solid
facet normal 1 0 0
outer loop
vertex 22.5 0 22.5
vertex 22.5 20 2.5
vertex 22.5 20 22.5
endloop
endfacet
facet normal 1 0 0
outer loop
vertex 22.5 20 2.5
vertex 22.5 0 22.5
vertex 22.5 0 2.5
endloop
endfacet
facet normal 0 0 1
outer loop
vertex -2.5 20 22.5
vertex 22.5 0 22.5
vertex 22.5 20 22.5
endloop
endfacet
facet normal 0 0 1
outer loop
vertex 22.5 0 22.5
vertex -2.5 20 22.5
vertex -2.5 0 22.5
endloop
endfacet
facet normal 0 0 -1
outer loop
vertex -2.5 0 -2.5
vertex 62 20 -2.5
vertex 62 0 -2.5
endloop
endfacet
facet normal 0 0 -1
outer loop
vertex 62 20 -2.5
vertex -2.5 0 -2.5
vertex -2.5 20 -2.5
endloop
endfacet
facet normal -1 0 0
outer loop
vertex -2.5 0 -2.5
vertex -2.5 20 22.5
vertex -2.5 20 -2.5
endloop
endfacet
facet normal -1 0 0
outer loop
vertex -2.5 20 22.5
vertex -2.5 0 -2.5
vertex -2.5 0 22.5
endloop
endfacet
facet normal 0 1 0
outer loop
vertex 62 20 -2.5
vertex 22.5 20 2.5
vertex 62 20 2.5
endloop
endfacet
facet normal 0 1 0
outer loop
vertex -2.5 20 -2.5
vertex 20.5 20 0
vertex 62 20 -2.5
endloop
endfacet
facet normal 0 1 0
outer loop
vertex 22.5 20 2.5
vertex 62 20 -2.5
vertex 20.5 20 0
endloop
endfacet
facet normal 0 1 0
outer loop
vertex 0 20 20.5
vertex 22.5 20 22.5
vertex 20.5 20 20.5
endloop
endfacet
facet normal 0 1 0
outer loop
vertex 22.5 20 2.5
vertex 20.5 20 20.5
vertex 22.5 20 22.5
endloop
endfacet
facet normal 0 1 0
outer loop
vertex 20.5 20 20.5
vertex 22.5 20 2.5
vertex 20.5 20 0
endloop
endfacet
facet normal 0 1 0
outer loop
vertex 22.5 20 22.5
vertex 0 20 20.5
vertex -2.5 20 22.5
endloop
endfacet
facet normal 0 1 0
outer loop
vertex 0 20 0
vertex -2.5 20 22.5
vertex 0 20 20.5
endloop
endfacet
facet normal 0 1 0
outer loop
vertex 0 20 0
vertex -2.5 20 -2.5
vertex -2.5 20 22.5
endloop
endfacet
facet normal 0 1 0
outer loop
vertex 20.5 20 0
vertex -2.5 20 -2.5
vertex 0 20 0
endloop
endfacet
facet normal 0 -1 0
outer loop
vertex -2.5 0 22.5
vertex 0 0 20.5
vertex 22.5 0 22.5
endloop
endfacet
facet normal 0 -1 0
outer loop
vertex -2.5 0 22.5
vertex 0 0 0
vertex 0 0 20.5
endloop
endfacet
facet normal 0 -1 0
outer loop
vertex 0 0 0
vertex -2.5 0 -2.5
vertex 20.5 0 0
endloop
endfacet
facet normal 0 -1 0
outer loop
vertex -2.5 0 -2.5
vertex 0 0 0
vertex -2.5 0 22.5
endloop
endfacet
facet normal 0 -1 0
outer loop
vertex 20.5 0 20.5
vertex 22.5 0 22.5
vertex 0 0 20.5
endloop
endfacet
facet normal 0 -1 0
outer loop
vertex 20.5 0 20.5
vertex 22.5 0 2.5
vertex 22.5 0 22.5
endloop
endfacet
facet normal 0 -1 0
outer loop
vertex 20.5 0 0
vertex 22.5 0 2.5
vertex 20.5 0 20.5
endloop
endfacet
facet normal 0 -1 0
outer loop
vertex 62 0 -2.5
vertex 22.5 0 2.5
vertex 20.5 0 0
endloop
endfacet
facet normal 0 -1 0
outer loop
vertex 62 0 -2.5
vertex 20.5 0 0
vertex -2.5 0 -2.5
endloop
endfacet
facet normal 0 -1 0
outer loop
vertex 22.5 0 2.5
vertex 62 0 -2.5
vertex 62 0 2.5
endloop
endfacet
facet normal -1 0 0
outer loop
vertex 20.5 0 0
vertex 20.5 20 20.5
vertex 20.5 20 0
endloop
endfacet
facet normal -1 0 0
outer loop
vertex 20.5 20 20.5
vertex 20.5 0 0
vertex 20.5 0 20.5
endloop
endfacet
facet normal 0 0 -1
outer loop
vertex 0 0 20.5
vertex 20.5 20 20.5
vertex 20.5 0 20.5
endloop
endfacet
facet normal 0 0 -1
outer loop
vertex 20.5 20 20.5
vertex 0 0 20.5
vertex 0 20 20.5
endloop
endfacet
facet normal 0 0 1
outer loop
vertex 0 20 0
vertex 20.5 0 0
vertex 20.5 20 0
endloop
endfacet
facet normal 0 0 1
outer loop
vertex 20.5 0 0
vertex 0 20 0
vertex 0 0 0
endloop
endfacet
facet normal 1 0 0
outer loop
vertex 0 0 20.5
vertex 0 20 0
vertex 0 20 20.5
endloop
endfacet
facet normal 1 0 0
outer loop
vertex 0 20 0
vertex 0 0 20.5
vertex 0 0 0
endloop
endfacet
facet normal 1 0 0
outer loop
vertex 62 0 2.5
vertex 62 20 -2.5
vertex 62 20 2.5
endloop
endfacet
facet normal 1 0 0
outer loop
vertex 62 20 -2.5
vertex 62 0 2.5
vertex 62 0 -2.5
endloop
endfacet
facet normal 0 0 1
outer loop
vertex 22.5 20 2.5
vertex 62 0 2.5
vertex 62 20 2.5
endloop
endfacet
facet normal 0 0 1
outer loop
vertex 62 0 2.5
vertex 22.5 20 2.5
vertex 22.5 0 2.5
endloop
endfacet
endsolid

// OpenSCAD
difference(){
	translate([-2.5,0,-2.5]) cube([25,20,25]);
	#translate([0,-50,0]) cube([20.5,100,20.5]);
}
translate([22,0,-2.5]) cube([40,20,5]);
